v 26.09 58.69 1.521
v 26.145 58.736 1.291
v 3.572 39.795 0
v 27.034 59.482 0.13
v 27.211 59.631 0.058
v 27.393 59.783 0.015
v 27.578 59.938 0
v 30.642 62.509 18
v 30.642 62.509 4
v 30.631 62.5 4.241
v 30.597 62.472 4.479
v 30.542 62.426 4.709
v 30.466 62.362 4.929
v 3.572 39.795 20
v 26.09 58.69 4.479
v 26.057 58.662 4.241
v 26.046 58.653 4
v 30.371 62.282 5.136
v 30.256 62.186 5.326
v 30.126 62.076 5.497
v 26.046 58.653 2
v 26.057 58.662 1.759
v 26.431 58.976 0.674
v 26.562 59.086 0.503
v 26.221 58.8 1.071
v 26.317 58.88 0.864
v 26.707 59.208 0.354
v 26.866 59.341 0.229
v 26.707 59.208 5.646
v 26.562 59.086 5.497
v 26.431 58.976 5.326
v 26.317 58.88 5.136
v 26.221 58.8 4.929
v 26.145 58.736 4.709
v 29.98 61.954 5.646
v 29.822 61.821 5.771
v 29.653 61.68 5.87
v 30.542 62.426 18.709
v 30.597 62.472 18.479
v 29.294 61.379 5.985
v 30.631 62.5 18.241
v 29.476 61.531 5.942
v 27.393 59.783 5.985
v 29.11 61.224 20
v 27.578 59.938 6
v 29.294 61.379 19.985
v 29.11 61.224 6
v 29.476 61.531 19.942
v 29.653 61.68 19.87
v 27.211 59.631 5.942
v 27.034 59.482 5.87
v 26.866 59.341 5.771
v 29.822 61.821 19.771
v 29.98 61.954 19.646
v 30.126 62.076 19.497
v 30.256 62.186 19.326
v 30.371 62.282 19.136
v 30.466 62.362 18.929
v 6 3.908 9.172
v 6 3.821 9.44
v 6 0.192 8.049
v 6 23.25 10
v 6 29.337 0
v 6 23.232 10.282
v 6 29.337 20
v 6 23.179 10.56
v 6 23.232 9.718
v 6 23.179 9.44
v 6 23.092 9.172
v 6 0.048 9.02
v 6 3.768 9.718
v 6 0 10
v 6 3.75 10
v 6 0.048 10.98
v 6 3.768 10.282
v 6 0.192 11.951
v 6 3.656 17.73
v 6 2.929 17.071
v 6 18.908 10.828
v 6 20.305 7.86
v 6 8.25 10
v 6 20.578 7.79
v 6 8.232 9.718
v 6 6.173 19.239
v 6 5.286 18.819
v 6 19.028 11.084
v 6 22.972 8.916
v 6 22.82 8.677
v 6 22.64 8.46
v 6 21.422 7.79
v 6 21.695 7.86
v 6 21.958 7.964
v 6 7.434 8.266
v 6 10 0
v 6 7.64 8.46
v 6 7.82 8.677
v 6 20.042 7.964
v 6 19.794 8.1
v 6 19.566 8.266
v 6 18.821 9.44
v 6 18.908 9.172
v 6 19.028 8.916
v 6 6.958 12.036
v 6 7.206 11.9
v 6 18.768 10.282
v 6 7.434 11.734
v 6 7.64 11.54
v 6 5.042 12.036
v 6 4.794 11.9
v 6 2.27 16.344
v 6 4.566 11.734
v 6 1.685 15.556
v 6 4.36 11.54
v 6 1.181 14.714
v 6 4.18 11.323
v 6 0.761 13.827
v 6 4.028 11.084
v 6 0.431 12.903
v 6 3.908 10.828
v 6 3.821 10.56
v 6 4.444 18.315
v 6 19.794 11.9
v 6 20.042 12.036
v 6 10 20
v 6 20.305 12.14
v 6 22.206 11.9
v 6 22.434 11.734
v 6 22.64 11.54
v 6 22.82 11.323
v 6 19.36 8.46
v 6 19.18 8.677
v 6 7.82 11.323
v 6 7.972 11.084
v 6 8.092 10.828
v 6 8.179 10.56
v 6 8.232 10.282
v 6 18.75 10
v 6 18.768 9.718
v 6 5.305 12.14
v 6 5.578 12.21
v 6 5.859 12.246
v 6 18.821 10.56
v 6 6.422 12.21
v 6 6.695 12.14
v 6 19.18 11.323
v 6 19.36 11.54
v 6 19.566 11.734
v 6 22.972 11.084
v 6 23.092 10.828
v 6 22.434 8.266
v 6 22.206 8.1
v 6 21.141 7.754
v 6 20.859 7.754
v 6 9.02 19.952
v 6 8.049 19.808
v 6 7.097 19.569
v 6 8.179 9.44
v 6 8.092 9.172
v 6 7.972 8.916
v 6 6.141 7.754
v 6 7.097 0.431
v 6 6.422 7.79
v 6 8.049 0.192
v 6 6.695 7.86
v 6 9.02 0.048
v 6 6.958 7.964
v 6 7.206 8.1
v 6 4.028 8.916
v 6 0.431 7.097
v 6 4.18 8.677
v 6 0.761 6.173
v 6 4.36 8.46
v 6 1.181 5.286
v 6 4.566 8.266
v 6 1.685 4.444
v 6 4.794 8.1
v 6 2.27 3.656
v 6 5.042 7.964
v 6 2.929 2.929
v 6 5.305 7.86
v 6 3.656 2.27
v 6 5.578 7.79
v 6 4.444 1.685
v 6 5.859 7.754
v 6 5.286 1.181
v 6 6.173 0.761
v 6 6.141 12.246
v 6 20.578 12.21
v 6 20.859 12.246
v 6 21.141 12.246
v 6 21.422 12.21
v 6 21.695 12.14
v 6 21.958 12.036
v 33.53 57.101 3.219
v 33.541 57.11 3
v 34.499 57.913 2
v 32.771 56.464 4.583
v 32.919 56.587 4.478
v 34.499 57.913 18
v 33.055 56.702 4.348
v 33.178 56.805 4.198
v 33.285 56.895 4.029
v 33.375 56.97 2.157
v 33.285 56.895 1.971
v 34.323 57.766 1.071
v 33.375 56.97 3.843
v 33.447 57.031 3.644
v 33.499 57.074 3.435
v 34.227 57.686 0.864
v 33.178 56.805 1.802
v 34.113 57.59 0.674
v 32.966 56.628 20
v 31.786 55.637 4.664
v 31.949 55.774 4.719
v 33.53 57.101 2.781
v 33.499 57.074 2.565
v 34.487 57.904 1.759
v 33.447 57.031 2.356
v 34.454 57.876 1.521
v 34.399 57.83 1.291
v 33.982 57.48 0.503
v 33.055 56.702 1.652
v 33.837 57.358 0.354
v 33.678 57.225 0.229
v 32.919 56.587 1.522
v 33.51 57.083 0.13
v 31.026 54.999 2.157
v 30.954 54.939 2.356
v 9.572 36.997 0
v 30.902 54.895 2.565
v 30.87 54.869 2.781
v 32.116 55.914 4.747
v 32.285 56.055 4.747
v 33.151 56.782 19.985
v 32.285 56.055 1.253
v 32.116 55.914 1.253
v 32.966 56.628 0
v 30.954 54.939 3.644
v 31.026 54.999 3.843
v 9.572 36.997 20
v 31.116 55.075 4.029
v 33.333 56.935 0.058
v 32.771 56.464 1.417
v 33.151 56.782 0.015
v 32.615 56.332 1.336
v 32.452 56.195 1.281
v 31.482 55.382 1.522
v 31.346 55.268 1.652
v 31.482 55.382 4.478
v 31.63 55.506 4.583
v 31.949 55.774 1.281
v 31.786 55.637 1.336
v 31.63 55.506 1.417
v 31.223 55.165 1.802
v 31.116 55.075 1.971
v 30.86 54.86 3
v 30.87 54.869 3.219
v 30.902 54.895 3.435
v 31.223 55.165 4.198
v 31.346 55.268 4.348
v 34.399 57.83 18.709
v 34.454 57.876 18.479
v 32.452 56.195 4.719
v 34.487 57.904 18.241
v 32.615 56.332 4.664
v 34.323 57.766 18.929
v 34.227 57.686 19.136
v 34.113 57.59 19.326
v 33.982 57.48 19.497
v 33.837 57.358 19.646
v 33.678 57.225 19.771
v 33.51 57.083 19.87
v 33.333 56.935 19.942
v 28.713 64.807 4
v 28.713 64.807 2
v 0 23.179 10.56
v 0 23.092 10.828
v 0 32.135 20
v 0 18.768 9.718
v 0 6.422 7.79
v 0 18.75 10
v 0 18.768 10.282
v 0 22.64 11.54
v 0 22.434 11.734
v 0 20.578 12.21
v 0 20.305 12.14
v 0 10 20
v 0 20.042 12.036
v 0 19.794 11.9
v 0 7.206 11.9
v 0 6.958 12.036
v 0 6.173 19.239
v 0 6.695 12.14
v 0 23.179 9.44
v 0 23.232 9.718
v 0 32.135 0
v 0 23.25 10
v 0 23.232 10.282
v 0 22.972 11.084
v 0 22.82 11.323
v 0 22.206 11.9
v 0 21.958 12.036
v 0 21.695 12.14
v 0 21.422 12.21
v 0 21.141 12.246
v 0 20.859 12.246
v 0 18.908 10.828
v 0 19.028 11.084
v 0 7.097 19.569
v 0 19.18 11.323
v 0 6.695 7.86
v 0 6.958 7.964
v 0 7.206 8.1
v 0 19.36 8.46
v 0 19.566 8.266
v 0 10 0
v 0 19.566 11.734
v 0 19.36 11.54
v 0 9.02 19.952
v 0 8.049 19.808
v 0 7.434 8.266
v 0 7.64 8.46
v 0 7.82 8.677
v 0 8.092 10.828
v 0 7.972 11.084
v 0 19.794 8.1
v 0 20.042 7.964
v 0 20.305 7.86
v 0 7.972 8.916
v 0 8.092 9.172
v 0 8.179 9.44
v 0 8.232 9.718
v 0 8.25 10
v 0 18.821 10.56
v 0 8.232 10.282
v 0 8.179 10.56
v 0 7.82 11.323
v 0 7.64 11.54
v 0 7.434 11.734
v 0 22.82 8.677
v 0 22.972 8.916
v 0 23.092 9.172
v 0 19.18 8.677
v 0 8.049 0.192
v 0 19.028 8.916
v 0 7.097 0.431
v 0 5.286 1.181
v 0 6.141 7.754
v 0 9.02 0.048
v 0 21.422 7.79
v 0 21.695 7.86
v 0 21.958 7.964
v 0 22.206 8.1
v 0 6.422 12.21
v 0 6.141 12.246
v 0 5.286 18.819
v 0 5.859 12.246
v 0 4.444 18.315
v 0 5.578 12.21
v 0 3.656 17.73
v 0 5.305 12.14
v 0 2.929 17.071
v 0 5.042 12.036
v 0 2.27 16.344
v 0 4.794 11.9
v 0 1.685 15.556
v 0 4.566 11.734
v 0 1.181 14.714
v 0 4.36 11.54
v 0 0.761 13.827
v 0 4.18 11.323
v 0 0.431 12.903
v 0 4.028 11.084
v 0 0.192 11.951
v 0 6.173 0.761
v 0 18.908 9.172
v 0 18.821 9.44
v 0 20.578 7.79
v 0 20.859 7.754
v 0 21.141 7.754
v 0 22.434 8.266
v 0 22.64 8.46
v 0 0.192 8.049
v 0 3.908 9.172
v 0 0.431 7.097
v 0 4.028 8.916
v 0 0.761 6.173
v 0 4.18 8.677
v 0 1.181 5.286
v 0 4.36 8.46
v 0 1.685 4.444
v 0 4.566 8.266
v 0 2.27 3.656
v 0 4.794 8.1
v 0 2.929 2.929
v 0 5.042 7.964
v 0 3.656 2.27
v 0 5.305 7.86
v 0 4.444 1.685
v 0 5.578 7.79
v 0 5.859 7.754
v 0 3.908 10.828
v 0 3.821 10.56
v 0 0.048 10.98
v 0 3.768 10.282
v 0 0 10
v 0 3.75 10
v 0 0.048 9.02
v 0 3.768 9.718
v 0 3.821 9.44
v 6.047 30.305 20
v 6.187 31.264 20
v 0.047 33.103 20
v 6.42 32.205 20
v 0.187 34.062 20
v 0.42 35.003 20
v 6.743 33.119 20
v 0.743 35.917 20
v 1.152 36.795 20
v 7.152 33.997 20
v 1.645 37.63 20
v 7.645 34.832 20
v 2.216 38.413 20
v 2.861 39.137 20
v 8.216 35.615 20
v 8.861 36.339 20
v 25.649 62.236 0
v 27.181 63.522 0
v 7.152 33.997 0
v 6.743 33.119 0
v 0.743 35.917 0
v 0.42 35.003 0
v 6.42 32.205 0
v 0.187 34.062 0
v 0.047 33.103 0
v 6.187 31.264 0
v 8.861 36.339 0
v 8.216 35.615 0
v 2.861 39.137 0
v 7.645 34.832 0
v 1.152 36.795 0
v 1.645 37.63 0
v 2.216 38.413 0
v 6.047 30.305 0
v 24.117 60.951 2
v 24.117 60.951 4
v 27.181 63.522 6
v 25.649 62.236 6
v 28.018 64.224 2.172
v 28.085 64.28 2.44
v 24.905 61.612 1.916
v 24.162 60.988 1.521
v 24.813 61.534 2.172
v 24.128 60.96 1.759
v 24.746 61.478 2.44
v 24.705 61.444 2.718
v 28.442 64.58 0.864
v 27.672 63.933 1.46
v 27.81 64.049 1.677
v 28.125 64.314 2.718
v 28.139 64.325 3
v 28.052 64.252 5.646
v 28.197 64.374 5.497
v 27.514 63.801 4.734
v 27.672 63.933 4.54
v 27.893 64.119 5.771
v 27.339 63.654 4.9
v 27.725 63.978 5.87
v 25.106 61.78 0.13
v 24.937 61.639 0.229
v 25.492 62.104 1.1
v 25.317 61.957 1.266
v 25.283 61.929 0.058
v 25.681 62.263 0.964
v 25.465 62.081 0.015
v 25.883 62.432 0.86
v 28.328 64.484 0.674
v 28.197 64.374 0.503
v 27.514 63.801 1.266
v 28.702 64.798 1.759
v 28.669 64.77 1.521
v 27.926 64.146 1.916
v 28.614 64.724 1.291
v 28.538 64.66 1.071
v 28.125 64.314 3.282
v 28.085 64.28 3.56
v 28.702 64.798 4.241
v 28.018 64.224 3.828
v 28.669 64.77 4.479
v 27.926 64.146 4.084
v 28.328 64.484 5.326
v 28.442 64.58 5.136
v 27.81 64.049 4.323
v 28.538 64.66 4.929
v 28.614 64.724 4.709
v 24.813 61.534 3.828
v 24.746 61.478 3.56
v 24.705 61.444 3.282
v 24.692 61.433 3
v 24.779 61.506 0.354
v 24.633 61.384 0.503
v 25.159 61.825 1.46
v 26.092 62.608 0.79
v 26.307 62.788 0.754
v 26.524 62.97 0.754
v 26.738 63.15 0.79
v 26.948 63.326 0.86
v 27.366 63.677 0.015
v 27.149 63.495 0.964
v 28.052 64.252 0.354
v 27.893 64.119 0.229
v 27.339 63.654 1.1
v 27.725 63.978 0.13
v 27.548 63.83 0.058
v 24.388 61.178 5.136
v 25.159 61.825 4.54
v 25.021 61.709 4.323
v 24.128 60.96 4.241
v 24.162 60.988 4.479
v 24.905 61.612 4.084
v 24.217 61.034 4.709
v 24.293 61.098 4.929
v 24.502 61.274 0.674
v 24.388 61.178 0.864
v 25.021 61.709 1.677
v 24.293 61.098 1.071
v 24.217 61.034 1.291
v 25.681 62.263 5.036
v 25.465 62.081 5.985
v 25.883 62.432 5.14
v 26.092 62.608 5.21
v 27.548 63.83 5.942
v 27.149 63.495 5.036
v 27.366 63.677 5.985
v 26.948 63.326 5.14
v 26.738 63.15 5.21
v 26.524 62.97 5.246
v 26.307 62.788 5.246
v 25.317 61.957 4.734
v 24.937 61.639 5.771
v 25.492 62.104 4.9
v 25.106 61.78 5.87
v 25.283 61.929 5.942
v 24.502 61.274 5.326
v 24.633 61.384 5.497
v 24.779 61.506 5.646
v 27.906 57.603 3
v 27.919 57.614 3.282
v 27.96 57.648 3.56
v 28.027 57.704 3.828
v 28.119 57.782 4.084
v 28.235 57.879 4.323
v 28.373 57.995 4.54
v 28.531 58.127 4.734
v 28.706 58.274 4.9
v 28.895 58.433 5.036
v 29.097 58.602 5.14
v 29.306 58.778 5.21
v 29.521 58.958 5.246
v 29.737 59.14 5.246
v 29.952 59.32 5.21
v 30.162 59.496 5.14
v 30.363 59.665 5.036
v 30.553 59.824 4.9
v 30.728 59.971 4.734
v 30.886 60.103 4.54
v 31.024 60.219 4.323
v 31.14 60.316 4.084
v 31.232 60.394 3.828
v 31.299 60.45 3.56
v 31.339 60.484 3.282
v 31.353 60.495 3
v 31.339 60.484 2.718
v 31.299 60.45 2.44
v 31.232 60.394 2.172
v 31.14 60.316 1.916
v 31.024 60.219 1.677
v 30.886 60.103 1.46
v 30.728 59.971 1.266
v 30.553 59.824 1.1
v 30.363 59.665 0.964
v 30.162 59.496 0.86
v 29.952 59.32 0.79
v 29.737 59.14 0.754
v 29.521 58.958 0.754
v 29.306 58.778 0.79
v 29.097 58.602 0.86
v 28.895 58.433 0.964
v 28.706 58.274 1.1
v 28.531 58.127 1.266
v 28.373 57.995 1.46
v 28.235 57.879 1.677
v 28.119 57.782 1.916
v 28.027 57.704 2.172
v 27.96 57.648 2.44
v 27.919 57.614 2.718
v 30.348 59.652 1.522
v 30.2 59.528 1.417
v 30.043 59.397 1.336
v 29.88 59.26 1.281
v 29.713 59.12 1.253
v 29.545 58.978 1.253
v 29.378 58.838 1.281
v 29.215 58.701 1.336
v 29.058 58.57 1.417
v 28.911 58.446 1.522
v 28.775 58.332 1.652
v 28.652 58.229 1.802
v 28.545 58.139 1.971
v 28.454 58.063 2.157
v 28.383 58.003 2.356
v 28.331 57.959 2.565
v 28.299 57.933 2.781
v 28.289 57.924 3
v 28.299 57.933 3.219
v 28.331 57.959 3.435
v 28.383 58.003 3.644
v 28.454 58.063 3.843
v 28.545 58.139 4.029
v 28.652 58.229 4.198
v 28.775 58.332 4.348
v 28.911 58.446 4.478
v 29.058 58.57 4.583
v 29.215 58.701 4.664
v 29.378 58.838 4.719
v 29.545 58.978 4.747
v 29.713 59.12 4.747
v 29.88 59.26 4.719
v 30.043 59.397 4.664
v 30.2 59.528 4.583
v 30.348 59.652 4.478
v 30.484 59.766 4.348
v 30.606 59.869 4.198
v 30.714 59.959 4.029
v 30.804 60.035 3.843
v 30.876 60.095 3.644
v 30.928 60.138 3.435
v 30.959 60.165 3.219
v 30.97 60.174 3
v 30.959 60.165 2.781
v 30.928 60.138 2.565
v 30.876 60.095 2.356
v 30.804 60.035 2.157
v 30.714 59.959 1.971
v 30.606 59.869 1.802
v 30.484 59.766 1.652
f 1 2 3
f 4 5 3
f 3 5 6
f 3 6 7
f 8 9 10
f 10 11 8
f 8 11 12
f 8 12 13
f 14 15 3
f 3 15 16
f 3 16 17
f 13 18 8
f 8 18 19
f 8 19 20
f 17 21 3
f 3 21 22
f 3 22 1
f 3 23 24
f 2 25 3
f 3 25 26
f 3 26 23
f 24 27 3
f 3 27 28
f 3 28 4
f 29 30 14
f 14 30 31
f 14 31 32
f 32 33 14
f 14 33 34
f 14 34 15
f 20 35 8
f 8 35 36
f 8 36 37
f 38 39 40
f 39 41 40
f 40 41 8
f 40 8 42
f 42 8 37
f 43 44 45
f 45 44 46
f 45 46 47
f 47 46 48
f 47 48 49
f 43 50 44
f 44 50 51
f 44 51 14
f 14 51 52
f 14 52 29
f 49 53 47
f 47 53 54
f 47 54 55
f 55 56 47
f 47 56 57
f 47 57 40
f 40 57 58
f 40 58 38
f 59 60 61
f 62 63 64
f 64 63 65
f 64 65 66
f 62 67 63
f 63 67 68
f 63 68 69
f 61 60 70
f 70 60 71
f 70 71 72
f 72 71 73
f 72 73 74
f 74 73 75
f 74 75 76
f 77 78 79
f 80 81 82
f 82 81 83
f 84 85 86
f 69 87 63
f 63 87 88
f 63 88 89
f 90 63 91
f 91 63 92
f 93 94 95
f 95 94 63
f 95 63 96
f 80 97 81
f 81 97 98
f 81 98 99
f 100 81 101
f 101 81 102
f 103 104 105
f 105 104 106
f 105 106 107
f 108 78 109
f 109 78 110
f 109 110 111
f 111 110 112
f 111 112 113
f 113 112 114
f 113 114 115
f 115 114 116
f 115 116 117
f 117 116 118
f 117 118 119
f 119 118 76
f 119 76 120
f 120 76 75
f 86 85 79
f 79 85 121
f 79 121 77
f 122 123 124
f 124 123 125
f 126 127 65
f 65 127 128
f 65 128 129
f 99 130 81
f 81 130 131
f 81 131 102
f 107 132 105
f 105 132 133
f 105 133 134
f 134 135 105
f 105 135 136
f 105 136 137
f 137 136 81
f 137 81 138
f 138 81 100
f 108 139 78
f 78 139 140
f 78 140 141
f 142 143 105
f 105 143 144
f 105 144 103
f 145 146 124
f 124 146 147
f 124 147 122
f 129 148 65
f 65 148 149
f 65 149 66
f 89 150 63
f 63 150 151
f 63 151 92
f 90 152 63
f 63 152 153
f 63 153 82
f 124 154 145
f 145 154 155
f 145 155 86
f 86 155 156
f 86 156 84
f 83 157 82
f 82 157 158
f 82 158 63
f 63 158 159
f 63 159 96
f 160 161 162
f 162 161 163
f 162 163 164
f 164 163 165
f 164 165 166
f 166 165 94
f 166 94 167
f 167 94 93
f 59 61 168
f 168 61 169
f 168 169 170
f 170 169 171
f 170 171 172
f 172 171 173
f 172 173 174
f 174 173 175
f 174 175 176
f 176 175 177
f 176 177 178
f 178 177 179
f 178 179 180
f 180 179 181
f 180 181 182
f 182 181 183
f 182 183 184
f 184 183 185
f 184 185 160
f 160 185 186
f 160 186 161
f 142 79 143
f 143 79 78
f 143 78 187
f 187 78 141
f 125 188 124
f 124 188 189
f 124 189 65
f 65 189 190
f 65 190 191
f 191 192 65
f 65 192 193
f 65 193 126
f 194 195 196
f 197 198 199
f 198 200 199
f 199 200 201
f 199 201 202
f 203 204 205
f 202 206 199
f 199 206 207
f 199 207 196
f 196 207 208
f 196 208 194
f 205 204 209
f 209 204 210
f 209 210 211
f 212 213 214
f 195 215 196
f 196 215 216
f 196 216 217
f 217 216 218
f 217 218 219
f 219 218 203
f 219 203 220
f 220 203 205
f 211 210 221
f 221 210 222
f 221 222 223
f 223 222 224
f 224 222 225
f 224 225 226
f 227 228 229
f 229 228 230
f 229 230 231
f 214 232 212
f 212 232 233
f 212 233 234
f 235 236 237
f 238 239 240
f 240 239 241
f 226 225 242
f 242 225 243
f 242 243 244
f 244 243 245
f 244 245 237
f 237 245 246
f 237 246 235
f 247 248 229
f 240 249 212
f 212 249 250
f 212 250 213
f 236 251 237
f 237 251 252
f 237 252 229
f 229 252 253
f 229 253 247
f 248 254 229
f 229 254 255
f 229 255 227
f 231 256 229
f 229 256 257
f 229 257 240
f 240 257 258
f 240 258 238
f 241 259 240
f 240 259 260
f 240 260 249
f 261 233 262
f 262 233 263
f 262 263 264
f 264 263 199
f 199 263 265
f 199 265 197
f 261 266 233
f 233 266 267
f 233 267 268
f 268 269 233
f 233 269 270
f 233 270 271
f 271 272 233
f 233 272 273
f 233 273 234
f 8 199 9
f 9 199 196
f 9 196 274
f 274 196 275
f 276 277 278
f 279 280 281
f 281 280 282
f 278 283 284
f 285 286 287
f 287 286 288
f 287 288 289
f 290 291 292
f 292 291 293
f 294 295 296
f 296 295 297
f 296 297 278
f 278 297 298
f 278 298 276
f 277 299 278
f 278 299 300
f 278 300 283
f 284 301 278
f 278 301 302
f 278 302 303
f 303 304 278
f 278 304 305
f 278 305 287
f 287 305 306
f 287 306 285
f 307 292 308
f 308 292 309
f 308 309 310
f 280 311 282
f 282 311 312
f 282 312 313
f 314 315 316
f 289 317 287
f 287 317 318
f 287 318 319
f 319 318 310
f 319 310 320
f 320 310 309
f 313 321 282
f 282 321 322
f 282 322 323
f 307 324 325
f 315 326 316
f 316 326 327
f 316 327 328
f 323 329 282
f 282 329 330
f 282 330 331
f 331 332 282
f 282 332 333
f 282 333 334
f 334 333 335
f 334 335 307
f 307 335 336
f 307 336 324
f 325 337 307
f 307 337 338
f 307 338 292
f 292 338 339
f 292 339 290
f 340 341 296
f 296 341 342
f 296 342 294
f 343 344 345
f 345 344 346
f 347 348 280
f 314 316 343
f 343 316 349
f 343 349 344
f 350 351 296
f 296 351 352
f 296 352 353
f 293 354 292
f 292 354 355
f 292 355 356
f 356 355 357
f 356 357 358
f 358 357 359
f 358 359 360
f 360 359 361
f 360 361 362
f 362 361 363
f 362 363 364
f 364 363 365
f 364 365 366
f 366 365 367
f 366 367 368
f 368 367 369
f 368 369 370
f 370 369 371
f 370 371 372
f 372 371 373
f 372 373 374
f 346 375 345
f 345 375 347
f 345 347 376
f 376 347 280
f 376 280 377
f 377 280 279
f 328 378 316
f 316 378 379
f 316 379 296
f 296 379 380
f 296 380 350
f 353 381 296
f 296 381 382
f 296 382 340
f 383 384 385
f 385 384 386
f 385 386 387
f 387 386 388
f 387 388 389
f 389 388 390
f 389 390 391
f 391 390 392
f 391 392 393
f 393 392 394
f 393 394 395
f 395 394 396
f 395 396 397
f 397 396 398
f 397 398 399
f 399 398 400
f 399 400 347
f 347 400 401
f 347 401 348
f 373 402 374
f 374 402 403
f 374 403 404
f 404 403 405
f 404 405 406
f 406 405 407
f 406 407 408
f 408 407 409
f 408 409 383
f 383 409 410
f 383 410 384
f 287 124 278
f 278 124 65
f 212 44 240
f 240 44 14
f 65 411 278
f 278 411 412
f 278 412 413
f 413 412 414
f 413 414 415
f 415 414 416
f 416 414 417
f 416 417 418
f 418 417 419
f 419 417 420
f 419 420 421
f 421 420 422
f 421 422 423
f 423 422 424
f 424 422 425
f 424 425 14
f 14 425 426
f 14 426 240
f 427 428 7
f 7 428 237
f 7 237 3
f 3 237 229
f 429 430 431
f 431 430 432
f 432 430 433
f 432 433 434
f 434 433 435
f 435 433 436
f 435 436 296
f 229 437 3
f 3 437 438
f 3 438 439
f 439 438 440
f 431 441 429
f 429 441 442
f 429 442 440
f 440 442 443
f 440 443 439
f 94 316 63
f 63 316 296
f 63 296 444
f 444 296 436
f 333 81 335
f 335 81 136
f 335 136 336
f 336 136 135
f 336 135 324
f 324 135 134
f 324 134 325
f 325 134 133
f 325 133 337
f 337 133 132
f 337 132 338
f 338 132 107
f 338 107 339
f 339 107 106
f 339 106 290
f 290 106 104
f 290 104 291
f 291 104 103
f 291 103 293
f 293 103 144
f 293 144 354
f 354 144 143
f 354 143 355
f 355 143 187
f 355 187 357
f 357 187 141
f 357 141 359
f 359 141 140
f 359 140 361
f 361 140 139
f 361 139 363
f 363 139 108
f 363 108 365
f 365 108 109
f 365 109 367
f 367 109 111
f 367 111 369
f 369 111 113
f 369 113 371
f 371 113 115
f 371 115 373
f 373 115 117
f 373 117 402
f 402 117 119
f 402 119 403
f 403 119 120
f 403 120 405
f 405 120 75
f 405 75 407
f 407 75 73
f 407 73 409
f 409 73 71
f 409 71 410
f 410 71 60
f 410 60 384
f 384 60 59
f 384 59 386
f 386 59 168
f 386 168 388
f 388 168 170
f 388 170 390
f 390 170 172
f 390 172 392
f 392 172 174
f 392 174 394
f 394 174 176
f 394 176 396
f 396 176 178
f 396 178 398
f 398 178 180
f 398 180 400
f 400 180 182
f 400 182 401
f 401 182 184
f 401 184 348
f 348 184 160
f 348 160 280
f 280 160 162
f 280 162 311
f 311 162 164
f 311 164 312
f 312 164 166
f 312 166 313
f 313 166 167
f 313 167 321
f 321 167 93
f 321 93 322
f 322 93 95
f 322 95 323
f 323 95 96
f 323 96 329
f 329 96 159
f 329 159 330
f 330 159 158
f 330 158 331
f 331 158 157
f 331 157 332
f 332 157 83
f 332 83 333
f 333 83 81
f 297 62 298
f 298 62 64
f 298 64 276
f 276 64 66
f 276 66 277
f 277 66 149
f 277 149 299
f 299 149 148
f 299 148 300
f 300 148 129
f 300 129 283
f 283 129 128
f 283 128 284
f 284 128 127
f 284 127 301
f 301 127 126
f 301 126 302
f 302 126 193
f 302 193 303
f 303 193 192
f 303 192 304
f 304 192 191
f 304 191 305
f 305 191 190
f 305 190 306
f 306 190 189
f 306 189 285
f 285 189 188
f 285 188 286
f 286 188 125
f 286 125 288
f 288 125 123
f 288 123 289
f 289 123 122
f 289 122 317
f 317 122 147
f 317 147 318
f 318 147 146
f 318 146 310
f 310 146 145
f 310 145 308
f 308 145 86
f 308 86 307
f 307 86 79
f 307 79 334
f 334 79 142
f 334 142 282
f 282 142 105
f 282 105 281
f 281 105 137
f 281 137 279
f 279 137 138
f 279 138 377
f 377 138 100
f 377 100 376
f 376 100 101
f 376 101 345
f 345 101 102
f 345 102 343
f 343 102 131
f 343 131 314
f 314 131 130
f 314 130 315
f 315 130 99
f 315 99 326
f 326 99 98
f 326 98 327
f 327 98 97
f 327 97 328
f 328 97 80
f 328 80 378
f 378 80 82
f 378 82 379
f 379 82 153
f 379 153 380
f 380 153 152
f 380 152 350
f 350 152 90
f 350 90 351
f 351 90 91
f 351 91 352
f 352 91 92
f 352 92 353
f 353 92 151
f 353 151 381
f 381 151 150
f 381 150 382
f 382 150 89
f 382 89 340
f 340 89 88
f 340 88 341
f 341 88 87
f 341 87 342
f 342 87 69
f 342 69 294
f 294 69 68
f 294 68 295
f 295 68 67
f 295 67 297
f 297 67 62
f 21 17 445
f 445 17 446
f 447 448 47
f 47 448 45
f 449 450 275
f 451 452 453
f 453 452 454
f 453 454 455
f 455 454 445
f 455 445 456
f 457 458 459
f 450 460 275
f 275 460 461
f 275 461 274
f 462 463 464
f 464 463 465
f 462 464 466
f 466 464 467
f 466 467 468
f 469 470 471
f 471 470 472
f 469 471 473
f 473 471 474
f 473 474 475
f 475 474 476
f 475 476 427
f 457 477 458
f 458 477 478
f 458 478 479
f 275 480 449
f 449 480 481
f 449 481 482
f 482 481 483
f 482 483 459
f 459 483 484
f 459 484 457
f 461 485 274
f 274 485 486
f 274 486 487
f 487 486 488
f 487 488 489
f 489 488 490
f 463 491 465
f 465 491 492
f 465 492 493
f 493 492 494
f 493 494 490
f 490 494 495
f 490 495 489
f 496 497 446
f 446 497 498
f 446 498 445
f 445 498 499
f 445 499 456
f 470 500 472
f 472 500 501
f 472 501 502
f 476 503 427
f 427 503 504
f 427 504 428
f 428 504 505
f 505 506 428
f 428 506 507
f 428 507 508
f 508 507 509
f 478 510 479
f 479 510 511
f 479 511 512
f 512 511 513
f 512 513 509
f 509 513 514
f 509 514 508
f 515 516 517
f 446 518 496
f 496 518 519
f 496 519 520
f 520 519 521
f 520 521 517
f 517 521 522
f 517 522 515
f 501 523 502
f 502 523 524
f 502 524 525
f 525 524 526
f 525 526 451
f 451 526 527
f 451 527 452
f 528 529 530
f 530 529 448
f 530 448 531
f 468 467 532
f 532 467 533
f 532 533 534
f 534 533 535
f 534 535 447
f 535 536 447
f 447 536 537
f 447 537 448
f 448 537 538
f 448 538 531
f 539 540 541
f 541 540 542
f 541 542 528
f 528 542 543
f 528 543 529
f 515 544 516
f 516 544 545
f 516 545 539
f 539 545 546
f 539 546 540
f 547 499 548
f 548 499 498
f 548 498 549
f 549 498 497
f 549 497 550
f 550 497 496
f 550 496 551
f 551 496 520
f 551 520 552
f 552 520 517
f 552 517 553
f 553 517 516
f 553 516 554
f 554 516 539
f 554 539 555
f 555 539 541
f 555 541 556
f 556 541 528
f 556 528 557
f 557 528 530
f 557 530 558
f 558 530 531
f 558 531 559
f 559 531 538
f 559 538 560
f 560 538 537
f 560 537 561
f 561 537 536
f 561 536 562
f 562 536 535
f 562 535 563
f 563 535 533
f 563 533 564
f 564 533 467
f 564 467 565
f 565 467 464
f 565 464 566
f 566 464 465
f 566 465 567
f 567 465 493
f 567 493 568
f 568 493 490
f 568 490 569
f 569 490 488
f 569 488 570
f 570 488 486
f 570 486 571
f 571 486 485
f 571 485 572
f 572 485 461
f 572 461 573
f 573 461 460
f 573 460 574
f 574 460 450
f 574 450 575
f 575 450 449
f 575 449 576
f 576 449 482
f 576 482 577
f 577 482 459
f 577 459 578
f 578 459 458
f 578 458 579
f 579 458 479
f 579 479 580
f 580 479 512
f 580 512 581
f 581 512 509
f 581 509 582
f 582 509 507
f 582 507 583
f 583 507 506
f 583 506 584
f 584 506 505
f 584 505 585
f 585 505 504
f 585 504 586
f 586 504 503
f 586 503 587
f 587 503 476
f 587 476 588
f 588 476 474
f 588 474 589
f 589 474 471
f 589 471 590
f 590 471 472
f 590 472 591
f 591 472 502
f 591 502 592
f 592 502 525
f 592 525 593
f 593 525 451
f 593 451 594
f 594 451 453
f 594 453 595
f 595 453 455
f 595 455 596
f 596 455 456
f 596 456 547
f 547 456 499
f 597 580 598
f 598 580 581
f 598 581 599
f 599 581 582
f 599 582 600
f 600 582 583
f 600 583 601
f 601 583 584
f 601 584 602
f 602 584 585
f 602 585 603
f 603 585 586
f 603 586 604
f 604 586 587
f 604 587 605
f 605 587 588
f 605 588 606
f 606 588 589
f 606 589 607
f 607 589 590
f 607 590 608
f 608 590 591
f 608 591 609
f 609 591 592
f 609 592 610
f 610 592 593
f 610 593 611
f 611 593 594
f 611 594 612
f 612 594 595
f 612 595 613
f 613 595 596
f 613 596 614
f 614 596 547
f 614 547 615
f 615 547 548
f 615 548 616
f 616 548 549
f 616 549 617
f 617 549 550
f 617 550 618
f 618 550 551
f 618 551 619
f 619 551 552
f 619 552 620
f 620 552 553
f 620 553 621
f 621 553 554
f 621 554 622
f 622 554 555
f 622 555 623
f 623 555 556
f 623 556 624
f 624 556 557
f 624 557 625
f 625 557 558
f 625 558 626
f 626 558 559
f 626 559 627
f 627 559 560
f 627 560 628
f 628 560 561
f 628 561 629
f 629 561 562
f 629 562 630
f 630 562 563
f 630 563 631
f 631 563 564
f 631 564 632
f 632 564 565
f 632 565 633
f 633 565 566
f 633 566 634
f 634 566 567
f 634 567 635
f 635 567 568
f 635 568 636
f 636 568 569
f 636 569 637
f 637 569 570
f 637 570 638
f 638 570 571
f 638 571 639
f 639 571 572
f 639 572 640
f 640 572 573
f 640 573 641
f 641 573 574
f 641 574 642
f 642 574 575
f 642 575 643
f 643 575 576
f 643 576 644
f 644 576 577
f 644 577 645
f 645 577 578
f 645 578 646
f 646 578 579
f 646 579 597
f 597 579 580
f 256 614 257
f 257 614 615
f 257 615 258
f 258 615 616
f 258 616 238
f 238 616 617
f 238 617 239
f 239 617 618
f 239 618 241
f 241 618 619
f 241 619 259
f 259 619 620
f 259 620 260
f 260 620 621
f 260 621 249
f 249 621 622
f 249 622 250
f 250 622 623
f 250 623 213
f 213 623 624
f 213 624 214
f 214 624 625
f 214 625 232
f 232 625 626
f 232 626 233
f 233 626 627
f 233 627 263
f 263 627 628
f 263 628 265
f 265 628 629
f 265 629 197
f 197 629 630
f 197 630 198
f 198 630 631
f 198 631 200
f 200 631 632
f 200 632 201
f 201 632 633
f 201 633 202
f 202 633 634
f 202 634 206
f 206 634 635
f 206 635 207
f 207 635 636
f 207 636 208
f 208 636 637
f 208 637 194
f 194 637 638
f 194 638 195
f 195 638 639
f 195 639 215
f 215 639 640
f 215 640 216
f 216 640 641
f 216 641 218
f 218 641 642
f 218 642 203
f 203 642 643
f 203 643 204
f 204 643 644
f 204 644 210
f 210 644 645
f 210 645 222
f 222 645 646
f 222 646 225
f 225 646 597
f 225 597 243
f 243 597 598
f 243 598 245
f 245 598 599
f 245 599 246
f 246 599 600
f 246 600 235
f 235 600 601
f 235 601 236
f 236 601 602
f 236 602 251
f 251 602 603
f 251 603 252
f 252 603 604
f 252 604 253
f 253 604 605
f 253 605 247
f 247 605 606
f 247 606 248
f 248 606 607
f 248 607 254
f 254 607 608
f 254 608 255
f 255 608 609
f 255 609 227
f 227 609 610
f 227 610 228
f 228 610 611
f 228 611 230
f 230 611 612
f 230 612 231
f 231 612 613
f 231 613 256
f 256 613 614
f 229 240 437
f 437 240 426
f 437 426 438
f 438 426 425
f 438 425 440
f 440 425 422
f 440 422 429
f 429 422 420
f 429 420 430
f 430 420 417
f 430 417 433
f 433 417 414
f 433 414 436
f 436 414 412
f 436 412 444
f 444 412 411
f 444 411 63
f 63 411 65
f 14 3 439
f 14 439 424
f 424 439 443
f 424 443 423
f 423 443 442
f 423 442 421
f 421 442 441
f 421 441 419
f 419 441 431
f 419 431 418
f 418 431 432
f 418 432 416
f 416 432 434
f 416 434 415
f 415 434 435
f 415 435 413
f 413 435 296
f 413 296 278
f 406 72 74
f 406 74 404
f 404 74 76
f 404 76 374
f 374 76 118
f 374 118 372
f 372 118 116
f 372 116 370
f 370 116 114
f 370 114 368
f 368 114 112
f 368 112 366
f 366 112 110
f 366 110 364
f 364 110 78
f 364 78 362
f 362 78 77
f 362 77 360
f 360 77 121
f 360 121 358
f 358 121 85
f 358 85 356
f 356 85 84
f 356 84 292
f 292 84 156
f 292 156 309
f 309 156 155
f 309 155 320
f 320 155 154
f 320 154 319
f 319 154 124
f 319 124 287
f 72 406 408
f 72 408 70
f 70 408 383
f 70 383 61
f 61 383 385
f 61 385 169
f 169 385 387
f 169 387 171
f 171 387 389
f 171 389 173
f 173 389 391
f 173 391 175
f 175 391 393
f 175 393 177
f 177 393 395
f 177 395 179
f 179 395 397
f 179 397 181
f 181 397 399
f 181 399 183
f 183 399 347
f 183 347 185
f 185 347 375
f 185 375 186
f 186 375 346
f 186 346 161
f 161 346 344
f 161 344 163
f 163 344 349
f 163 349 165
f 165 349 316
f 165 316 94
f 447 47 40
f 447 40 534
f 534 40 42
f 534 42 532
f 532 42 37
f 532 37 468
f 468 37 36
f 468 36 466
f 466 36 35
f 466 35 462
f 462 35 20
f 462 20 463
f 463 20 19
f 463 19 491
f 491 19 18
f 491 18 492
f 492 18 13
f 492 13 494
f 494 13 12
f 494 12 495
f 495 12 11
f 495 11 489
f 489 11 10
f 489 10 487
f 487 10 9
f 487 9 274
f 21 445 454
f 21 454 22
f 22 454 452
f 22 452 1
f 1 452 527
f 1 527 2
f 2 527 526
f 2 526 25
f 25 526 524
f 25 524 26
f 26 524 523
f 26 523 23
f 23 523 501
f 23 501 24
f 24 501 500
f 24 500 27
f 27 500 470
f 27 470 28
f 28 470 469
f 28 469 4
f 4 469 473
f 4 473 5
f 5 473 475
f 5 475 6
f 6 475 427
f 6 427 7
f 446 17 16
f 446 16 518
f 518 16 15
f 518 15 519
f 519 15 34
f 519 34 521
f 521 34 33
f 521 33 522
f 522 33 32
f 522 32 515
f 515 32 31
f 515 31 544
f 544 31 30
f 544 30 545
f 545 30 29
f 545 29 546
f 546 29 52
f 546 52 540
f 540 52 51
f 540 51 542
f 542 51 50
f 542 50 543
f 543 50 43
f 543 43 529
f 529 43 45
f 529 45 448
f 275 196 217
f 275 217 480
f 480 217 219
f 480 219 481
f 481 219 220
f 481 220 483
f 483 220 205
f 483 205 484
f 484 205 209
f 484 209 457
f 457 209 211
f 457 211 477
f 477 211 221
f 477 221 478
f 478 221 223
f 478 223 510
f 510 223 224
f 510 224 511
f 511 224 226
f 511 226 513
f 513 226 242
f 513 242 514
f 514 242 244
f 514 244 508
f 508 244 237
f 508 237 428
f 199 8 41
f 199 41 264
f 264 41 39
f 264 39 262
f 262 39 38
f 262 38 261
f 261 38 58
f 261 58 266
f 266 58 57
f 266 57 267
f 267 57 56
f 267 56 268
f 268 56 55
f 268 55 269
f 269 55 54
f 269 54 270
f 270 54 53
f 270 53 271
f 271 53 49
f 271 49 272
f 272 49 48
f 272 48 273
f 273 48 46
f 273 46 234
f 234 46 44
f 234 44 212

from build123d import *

# Parameters (mm, degrees)
BOSS_EXTRU_1_DEPTH           = 20
ENL_V_MAT_EXTRU_1_DEPTH      = 72.5512653594726
ENL_V_MAT_EXTRU_1_DEPTH_BACK = 72.5512653594726
ESQUISSE2_R                  = 2.250000000000001
ESQUISSE2_R_2                = 2.2500000000000027
ESQUISSE3_W                  = 6
ESQUISSE3_H                  = 6
BOSS_EXTRU_2_DEPTH           = 3
ESQUISSE4_R                  = 2.249999999999996
ENL_V_MAT_EXTRU_2_DEPTH      = 5
ENL_V_MAT_EXTRU_3_DEPTH      = 71.97314065505222
ENL_V_MAT_EXTRU_3_DEPTH_BACK = 71.97314065505222
ESQUISSE5_R                  = 1.7499999999999962
CONG_1_R                     = 10
CONG_2_R                     = 2


with BuildPart() as part:
    # Esquisse1 → Boss.-Extru.1 (new body)
    with BuildSketch(Plane.XY):
        Polygon((0, 0), (0, 36.797845948930004), (30.64177772475918, 62.50935033639152), (34.498503382878404, 57.91308367767763), (5.9999999999999964, 34), (6, -9.3e-16), align=None)
    extrude(amount=BOSS_EXTRU_1_DEPTH)

    # Esquisse2 → Enlèv. mat.-Extru.1 (cut, two sides: drawn at the far end of the back side and taken through both)
    with BuildSketch(Plane(origin=(6, 6.1e-16, 0), x_dir=(0, 0, -1), z_dir=(1, 1.2e-16, 0)).offset(-ENL_V_MAT_EXTRU_1_DEPTH_BACK)):
        with Locations(Location((-10, 6.000000000000001, 0), (0, 0, 90))):
            Circle(ESQUISSE2_R)
        with Locations(Location((-10, 21, 0), (0, 0, 90))):
            Circle(ESQUISSE2_R_2)
    extrude(amount=ENL_V_MAT_EXTRU_1_DEPTH + ENL_V_MAT_EXTRU_1_DEPTH_BACK, mode=Mode.SUBTRACT)

    # Esquisse3 → Boss.-Extru.2 (add)
    with BuildSketch(Plane(origin=(-18.11940199232756, 21.59386242001515, 0), x_dir=(0.7660444431189798, 0.6427876096865373, 0), z_dir=(-0.6427876096865373, 0.7660444431189798, 0))):
        with Locations((60.65319943912616, -3)):
            Rectangle(ESQUISSE3_W, ESQUISSE3_H)
    extrude(amount=BOSS_EXTRU_2_DEPTH)

    # Esquisse4 → Enlèv. mat.-Extru.2 (cut)
    with BuildSketch(Plane(origin=(-20.047764821387148, 23.89199574937203, 0), x_dir=(0.7660444431189795, 0.6427876096865378, 0), z_dir=(-0.6427876096865378, 0.7660444431189795, 0))):
        with Locations(Location((60.653199439126226, -3, 0), (0, 0, 180))):
            Circle(ESQUISSE4_R)
    extrude(amount=-ENL_V_MAT_EXTRU_2_DEPTH, mode=Mode.SUBTRACT)

    # Esquisse5 → Enlèv. mat.-Extru.3 (cut, two sides: drawn at the far end of the back side and taken through both)
    with BuildSketch(Plane(origin=(-16.83382677295446, 20.061773533777156, 0), x_dir=(0.7660444431189792, 0.6427876096865379, 0), z_dir=(-0.6427876096865379, 0.7660444431189792, 0)).offset(-ENL_V_MAT_EXTRU_3_DEPTH_BACK)):
        with Locations(Location((60.653199439126226, -3, 0), (0, 0, 180))):
            Circle(ESQUISSE5_R)
    extrude(amount=ENL_V_MAT_EXTRU_3_DEPTH + ENL_V_MAT_EXTRU_3_DEPTH_BACK, mode=Mode.SUBTRACT)

    # Congé1
    cong_1_edges = [part.edges().sort_by_distance(p)[0] for p in [
        (5.9999999999999964, 34, 10),
        (0, 36.797845948930004, 10),
        (3, -4.7e-16, 0),
        (3, -4.7e-16, 20),
    ]]
    fillet(cong_1_edges, radius=CONG_1_R - 0.0001)  # a hair under: the kernel refuses the full size

    # Congé2
    cong_2_edges = [part.edges().sort_by_distance(p)[0] for p in [
        (32.57014055381879, 60.21121700703458, 20),
        (29.67759631022939, 63.658417001069964, 6),
        (25.081329651515517, 59.80169134295074, 0),
        (25.081329651515517, 59.80169134295074, 6.000000000000001),
        (31.60595913928899, 61.360283671713034, 0),
    ]]
    fillet(cong_2_edges, radius=CONG_2_R)


solid = part.part
